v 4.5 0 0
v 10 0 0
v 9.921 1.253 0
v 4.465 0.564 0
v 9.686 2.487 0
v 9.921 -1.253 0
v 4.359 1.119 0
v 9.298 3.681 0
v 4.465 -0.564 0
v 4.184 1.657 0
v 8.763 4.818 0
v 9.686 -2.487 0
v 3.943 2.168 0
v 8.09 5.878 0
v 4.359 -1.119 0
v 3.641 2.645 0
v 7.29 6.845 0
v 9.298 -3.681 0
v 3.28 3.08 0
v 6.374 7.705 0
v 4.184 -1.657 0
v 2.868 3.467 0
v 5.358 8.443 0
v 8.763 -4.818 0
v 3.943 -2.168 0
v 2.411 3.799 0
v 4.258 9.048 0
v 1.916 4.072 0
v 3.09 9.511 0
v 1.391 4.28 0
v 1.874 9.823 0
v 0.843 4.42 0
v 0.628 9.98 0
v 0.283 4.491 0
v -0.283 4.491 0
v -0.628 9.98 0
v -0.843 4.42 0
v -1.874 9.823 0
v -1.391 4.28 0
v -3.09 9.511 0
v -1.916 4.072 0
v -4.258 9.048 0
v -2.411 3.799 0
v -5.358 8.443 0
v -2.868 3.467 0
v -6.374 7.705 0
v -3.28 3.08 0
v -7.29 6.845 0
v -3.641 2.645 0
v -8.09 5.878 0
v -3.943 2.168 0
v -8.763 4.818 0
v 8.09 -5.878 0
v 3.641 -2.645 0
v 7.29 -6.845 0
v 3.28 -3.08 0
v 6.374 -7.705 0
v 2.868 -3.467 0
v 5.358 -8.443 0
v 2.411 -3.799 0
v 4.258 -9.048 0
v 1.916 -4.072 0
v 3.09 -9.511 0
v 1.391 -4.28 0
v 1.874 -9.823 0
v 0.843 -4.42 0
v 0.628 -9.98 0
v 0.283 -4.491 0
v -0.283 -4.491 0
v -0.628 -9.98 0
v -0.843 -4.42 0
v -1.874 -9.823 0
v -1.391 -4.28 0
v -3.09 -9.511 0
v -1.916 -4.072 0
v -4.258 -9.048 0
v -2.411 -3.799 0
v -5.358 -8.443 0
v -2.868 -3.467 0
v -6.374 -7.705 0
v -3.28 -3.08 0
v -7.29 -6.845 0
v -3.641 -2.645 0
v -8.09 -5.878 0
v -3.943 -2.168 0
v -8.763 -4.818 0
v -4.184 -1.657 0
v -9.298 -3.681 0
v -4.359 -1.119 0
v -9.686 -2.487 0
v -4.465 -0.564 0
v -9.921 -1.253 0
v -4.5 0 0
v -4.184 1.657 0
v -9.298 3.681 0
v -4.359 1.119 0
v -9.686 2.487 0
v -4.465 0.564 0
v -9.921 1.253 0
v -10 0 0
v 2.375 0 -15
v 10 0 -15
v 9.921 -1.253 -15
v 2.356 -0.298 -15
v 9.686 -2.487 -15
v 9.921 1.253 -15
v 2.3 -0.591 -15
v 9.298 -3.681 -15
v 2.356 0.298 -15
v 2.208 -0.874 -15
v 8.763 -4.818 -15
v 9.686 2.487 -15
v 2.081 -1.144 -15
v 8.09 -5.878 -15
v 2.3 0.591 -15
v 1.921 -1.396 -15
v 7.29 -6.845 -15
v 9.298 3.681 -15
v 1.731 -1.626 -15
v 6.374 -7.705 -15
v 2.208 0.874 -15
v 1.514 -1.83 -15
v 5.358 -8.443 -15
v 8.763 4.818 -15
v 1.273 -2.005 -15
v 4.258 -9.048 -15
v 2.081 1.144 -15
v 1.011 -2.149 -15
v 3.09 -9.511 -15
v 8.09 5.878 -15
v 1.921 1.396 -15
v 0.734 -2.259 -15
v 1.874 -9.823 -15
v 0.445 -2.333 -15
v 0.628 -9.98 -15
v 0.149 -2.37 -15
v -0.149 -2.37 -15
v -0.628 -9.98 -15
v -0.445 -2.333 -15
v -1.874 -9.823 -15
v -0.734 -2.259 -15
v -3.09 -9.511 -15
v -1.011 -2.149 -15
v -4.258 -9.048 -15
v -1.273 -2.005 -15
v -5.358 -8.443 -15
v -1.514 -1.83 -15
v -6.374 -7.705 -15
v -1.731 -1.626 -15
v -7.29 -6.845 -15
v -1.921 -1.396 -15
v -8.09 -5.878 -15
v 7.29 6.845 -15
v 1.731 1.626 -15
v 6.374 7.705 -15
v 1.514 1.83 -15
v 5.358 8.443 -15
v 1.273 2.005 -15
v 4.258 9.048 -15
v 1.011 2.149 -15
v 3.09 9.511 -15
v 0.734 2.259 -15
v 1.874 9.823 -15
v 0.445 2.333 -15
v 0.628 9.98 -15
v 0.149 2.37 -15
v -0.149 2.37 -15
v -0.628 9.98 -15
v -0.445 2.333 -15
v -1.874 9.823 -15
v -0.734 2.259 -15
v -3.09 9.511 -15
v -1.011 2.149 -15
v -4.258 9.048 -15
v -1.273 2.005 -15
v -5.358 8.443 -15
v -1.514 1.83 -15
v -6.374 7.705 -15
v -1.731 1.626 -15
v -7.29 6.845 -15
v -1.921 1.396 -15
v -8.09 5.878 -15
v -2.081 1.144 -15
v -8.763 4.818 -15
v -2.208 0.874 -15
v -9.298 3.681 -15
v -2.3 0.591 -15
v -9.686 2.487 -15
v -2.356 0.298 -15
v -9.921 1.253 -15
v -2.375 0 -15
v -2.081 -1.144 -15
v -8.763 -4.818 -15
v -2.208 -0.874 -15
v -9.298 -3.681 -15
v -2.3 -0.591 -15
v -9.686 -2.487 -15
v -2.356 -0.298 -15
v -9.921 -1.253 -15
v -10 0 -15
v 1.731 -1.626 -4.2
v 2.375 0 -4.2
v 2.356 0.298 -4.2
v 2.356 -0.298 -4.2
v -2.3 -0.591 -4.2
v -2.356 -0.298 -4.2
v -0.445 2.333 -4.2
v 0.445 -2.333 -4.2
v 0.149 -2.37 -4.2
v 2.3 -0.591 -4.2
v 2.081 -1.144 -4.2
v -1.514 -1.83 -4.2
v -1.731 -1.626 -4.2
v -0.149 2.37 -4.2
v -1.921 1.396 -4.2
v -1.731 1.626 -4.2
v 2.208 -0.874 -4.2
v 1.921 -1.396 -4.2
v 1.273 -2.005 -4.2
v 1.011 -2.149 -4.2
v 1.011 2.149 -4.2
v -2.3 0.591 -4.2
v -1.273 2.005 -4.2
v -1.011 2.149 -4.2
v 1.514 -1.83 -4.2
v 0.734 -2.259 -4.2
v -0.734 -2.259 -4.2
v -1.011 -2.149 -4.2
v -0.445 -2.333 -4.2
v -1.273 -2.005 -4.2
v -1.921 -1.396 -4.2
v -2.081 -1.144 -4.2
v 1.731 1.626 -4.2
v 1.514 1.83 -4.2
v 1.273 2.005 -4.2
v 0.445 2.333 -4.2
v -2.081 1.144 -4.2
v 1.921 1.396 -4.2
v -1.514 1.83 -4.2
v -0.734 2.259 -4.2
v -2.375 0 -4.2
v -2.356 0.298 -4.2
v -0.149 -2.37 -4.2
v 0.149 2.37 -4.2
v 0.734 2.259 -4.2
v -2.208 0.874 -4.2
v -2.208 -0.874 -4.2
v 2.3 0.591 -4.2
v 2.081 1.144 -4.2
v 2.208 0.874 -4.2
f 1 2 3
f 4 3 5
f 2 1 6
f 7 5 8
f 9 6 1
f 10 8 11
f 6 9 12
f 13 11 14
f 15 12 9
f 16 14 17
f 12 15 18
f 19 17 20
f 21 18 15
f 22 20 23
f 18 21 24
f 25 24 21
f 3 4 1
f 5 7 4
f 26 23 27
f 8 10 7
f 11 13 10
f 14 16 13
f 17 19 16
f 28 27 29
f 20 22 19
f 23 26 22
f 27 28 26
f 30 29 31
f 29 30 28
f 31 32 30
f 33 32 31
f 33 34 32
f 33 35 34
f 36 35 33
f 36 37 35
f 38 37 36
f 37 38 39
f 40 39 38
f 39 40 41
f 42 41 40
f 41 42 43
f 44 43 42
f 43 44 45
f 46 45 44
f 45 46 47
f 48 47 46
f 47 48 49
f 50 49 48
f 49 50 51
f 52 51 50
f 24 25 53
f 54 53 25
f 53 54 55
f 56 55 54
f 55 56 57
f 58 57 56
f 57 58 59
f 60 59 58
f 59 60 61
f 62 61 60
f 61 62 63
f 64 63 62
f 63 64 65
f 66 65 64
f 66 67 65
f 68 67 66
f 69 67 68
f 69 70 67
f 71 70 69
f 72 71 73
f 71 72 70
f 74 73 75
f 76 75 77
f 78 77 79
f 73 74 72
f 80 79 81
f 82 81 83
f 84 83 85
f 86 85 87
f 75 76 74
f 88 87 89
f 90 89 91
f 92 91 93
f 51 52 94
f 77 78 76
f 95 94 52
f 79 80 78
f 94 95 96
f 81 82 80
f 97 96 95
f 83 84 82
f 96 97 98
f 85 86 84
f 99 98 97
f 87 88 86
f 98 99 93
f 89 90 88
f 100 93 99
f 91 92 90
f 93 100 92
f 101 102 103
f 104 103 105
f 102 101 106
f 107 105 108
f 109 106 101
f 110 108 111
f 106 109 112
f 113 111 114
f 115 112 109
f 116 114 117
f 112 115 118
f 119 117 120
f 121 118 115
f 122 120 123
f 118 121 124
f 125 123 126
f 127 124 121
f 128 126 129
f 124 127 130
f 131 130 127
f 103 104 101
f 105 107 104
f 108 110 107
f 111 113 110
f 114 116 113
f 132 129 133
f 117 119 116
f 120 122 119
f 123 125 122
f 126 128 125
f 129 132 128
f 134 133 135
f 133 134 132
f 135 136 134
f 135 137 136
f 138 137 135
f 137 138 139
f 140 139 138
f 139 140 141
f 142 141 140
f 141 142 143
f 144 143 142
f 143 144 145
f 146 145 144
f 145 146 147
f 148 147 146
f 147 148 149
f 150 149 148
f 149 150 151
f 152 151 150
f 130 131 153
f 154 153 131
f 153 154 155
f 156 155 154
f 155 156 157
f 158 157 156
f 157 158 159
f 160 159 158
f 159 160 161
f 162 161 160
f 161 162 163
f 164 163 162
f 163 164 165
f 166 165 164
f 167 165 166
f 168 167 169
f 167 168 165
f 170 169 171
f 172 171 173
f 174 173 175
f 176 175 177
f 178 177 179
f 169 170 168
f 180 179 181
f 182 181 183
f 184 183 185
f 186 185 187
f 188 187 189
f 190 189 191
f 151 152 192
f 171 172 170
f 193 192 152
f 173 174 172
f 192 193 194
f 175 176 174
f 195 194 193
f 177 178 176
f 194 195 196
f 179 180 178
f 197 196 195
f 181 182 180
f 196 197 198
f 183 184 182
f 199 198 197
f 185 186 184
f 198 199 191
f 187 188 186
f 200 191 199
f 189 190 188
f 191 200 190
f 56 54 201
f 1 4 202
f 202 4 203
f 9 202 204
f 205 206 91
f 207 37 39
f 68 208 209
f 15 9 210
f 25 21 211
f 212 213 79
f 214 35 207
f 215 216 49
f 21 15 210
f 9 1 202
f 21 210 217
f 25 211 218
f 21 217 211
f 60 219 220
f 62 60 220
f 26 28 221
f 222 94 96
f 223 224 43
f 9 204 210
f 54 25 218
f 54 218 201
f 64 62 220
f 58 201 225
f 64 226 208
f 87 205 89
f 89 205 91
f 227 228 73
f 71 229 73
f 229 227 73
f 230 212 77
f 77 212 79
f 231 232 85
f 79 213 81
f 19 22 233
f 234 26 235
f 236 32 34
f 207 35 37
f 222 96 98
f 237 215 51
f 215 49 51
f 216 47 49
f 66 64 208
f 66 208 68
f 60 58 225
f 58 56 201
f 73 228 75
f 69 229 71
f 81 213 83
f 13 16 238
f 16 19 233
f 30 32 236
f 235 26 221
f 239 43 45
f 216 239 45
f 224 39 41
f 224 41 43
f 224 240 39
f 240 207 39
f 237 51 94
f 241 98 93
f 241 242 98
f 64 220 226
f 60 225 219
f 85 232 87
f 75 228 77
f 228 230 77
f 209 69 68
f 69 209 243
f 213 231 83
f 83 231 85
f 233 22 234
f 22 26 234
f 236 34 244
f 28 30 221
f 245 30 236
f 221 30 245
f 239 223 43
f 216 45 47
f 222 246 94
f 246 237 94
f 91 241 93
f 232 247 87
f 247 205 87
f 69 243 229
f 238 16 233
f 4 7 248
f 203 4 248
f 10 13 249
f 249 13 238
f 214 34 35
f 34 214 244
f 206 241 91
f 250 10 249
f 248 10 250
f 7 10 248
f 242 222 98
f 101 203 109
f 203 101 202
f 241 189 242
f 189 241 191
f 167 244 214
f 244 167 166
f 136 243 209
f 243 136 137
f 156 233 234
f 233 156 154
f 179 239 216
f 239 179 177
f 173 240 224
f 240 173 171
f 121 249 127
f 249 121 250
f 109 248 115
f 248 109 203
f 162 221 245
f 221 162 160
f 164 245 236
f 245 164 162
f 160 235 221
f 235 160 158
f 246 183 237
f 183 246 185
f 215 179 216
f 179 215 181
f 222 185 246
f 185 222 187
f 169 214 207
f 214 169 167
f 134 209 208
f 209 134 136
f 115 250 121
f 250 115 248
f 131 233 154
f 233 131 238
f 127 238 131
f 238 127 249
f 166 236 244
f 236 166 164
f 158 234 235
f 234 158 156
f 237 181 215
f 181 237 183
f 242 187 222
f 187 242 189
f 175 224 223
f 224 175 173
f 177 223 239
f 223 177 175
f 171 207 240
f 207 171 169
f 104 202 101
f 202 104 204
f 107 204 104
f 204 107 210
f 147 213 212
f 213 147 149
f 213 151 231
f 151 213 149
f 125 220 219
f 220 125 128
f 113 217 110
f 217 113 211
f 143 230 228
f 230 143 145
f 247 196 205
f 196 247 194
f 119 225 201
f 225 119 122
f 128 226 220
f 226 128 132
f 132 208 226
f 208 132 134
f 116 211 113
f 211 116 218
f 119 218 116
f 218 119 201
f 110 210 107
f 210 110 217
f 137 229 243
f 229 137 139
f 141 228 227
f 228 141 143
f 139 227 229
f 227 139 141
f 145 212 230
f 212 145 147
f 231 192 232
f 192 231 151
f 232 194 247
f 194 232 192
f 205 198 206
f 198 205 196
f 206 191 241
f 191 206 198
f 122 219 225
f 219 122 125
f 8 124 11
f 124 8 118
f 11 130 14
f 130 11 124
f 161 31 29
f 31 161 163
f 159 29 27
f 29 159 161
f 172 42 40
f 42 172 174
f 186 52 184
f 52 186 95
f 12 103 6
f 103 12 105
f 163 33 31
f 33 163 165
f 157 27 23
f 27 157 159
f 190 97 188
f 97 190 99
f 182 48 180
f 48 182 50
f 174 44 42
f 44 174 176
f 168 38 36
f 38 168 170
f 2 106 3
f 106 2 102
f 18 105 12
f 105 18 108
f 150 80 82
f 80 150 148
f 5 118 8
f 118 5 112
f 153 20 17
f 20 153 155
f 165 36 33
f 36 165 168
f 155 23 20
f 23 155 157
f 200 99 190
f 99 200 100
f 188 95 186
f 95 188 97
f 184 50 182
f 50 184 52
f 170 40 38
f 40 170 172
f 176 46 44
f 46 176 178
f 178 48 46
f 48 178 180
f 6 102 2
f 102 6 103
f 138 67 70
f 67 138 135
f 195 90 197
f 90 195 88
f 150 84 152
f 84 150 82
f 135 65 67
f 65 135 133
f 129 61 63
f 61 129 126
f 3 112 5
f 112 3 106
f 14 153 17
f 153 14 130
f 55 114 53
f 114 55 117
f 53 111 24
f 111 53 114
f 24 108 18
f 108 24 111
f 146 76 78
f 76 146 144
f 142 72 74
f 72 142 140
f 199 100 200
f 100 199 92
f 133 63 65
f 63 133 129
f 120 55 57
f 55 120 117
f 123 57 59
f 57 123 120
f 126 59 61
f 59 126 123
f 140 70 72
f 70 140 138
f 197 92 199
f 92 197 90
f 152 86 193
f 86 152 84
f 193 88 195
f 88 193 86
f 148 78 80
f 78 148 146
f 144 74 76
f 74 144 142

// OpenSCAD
$fn = 50;


difference() {
	union() {
		translate(v = [0, 0, -15.0000000000]) {
			cylinder(h = 15, r = 10.0000000000);
		}
		cylinder(h = 0, r = 13.0000000000);
	}
	union() {
		translate(v = [0, 0, 0]) {
			rotate(a = [0, 0, 0]) {
				difference() {
					union() {
						#translate(v = [0, 0, -15.0000000000]) {
							cylinder(h = 15, r = 2.2500000000);
						}
						#translate(v = [0, 0, -4.2000000000]) {
							cylinder(h = 4.2000000000, r = 10.0000000000, r1 = 2.3750000000, r2 = 4.5000000000);
						}
						#translate(v = [0, 0, -15.0000000000]) {
							cylinder(h = 15, r = 2.3750000000);
						}
						#translate(v = [0, 0, -15.0000000000]) {
							cylinder(h = 15, r = 2.2500000000);
						}
					}
					union();
				}
			}
		}
	}
}
